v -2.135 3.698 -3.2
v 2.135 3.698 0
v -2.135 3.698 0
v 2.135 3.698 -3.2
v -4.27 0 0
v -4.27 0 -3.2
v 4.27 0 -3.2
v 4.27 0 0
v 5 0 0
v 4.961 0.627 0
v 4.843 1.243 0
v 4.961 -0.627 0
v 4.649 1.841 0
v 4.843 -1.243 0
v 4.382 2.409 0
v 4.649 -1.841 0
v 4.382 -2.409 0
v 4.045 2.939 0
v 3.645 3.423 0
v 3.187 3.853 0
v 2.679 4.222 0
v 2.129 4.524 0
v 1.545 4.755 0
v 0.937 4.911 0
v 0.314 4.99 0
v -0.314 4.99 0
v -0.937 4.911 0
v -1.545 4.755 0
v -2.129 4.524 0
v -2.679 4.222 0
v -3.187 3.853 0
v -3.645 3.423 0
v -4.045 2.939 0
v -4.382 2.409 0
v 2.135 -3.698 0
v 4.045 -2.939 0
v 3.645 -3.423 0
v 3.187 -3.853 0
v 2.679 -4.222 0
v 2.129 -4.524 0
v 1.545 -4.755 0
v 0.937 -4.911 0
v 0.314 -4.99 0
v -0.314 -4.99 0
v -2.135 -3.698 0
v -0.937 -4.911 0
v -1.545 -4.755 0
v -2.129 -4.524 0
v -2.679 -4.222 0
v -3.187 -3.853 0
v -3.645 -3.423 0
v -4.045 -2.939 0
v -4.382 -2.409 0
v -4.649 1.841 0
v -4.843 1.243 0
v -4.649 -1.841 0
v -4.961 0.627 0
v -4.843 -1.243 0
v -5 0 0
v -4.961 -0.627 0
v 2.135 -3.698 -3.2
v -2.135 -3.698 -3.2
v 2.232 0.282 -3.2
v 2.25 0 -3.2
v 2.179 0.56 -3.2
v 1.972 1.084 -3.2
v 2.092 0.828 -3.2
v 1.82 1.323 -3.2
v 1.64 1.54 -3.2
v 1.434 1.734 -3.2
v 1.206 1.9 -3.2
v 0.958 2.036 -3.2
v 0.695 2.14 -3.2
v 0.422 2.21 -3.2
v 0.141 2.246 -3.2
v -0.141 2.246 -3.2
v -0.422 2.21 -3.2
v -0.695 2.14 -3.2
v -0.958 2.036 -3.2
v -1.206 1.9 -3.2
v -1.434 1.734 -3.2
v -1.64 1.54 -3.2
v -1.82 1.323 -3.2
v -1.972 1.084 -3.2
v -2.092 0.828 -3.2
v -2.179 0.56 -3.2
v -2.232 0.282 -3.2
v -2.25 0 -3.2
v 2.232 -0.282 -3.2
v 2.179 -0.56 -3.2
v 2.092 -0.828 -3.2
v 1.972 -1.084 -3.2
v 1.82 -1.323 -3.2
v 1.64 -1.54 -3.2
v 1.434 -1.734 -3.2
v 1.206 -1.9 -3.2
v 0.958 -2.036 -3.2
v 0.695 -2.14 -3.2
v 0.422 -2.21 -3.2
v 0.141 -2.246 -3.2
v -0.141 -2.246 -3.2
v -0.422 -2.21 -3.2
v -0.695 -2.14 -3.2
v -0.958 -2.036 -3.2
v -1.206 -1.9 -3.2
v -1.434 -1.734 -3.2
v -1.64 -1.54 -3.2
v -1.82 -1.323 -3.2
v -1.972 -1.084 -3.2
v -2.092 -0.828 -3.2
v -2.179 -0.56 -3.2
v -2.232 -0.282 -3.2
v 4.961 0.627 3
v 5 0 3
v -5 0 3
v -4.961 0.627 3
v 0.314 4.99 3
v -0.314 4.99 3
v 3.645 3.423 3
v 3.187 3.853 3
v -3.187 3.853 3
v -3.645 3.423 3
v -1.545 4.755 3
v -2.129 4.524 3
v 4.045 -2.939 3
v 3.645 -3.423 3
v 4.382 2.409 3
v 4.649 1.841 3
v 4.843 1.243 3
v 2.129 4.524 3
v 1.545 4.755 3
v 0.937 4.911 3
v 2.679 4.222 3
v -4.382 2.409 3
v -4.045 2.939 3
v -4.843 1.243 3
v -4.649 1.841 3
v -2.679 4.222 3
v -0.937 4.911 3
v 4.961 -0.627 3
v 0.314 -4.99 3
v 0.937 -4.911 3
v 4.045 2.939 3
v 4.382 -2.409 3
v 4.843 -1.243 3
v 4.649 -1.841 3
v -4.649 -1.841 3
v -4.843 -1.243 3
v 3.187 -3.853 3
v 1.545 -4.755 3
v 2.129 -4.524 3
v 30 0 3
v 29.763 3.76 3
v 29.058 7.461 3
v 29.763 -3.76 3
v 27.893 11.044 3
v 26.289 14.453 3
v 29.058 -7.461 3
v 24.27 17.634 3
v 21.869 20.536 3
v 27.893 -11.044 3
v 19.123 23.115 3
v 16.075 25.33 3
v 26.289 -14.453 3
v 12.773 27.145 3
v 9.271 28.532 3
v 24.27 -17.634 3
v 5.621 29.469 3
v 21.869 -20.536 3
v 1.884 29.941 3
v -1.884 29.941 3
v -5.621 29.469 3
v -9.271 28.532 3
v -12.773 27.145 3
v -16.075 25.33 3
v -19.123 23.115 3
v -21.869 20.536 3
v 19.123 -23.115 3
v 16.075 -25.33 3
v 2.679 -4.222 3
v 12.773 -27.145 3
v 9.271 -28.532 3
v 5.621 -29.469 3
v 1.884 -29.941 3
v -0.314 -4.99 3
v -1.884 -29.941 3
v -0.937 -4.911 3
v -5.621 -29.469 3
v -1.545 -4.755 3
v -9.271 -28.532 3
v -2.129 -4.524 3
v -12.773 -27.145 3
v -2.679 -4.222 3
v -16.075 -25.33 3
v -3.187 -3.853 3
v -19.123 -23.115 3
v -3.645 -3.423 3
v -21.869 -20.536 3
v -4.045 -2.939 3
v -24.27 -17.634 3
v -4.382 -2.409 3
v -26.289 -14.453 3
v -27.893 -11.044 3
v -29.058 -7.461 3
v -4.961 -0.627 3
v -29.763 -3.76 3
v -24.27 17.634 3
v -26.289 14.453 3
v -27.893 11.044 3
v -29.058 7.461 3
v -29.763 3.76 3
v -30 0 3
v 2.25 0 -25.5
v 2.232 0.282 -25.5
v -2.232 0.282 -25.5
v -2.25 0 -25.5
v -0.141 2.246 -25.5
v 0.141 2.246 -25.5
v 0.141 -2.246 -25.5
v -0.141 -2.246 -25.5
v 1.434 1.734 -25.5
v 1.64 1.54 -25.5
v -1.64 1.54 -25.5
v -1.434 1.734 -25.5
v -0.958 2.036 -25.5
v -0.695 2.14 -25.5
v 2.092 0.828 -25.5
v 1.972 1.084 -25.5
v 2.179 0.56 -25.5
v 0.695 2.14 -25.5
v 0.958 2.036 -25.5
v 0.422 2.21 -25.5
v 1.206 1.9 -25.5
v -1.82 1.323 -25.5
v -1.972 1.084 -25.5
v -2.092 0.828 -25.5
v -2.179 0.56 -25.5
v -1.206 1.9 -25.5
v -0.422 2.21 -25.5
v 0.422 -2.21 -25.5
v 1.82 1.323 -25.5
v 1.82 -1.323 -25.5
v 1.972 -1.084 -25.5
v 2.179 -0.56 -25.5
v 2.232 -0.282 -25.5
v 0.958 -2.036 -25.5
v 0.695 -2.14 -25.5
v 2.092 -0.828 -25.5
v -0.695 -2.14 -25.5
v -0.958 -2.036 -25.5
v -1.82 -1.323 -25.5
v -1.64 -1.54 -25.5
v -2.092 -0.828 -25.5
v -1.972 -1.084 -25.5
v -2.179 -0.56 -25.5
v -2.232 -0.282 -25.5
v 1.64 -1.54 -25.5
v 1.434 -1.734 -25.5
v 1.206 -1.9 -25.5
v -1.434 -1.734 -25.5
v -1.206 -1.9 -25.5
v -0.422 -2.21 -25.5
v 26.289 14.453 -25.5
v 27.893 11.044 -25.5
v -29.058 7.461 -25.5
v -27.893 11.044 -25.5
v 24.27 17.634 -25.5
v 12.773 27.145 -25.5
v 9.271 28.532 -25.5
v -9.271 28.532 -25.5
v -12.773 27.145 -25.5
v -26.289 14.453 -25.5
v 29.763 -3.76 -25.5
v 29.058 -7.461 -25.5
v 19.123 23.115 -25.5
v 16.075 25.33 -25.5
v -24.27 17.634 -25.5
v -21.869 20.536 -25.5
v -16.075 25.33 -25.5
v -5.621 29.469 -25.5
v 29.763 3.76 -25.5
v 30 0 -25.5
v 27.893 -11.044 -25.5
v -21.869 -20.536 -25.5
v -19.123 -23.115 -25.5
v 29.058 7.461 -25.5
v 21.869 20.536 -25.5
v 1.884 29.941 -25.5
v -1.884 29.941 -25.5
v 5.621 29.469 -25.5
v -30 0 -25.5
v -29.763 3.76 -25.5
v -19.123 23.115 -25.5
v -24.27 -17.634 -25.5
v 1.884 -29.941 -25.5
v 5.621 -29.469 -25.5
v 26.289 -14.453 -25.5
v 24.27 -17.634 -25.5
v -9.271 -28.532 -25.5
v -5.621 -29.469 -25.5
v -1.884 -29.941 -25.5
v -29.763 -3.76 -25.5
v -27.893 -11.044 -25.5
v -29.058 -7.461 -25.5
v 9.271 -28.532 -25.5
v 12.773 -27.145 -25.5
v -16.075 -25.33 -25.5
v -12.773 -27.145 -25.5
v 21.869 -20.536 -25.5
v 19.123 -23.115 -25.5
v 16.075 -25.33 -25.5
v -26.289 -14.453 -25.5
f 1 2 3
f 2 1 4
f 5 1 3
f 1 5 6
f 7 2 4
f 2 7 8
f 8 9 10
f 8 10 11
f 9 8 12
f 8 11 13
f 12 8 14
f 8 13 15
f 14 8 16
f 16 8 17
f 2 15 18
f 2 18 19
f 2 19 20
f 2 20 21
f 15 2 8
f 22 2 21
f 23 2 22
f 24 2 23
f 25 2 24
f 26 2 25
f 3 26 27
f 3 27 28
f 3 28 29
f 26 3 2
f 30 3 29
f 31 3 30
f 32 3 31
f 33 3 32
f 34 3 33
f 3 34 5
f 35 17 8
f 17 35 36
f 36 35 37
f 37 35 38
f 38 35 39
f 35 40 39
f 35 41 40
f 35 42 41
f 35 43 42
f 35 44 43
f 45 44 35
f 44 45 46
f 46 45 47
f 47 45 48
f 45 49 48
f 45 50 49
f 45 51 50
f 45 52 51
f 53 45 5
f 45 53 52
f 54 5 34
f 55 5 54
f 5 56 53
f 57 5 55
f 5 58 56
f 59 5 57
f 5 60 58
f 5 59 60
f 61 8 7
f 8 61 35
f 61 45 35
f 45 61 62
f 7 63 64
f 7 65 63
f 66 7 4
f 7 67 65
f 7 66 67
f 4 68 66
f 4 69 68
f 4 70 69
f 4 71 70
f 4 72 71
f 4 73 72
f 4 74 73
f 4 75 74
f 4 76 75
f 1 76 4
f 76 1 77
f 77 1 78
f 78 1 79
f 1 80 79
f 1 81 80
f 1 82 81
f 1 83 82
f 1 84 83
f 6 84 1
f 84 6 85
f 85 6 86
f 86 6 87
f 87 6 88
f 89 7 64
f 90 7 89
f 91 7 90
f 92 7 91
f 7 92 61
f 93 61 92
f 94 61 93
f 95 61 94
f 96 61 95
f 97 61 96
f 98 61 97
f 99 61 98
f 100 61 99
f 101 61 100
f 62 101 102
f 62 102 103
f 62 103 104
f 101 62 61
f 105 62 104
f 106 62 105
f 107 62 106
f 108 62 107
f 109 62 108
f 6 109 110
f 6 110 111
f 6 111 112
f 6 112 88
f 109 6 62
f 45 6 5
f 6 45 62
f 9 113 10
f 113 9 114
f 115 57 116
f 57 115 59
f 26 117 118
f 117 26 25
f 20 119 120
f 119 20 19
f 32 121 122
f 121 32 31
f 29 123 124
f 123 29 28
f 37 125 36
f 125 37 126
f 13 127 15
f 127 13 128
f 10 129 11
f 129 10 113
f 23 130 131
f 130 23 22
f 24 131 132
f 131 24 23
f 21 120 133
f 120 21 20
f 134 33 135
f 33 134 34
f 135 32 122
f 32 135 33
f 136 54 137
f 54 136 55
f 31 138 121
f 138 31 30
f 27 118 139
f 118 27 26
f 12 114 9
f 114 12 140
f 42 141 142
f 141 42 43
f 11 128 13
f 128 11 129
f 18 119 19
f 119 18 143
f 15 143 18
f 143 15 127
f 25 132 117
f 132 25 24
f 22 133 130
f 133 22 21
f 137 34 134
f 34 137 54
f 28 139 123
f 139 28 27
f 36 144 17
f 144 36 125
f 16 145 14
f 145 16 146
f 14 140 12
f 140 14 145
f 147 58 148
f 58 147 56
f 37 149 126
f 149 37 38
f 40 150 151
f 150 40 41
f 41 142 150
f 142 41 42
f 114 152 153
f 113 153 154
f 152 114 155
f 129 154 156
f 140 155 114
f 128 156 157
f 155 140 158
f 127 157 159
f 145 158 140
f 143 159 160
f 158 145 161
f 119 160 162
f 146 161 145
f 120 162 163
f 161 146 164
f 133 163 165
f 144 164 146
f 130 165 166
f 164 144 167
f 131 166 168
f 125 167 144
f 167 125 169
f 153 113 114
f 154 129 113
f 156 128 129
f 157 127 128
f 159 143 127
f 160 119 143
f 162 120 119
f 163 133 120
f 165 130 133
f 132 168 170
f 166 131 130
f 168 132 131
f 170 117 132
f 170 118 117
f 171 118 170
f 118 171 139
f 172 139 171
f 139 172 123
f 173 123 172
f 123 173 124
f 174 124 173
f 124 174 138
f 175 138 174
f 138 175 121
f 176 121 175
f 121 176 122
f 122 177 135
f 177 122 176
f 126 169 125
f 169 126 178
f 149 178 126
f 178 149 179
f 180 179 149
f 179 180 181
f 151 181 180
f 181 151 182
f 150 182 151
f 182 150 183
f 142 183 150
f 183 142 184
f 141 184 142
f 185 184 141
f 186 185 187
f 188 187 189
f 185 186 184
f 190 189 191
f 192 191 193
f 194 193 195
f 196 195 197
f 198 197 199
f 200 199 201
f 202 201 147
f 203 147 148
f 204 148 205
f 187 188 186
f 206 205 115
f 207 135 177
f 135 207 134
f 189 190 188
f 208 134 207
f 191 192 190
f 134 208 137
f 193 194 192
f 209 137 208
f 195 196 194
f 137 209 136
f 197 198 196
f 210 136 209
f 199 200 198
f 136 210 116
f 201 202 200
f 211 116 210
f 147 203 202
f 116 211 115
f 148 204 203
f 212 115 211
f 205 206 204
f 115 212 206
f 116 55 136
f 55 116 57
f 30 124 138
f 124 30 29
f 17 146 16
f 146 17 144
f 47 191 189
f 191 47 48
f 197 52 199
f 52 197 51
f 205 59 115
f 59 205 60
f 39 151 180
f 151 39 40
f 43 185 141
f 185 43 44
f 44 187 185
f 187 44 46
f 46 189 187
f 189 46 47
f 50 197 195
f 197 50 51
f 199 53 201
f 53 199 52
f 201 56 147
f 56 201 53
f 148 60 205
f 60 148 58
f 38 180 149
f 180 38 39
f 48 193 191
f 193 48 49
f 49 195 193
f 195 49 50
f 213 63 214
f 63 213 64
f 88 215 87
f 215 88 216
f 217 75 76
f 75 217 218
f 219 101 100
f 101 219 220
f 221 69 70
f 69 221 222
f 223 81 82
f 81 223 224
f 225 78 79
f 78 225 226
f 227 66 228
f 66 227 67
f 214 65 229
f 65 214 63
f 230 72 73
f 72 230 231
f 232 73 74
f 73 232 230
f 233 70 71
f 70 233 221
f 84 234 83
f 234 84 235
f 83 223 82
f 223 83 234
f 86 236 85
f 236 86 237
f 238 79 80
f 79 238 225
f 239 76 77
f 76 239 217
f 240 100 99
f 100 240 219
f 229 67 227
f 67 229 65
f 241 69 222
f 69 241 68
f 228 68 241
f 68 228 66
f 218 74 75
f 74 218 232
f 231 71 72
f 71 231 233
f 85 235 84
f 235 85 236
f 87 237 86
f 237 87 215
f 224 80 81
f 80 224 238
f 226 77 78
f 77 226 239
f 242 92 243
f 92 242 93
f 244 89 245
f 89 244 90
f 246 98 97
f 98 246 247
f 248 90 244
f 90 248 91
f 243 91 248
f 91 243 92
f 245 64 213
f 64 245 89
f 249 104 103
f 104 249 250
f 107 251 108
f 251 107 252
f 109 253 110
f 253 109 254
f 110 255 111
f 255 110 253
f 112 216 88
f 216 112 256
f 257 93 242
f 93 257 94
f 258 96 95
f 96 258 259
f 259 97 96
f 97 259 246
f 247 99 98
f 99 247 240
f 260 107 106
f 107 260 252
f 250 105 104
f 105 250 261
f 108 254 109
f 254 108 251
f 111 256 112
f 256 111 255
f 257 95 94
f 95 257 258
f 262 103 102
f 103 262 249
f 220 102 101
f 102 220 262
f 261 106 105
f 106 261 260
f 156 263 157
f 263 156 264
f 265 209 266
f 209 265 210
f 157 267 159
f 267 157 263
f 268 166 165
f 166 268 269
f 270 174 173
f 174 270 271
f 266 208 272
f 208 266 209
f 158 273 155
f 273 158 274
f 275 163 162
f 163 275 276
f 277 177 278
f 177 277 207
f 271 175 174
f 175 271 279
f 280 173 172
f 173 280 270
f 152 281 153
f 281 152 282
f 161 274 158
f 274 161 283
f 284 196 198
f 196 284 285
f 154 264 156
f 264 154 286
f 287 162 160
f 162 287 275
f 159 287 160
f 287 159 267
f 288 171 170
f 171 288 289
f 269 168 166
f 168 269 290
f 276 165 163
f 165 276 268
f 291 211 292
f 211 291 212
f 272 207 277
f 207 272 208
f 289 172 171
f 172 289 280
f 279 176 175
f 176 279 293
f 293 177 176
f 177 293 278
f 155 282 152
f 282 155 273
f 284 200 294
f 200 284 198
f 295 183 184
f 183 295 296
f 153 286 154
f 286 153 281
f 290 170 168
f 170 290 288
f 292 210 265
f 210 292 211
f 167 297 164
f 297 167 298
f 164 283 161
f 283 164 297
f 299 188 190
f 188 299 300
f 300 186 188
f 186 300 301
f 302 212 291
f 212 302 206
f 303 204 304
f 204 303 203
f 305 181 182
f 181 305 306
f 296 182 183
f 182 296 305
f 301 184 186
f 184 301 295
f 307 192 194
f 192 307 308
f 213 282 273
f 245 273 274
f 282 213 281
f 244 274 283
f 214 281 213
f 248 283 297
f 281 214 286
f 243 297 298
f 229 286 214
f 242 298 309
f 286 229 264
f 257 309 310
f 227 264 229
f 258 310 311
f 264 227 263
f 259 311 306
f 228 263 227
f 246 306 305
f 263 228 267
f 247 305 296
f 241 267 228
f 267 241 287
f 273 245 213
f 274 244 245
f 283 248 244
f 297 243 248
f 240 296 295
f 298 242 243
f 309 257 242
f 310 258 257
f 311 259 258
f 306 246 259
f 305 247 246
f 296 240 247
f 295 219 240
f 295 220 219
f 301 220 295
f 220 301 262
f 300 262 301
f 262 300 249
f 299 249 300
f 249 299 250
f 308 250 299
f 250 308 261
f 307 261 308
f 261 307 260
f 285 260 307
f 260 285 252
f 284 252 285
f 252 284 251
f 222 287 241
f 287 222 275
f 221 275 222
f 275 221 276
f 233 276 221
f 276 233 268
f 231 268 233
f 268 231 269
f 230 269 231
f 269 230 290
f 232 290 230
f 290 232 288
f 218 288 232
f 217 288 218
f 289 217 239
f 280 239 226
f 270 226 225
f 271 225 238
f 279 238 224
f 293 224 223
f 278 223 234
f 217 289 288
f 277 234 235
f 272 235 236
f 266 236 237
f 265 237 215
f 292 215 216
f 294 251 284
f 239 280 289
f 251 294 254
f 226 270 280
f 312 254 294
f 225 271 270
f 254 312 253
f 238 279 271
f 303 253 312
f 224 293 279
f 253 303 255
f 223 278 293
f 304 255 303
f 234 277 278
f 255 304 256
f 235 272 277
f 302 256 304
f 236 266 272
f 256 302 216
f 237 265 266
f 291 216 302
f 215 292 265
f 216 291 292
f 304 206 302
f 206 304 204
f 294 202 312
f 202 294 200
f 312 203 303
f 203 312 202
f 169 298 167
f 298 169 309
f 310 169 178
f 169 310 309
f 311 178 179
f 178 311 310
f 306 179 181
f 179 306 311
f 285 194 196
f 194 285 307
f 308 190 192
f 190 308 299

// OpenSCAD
$fn = 50;


difference() {
	union() {
		translate(v = [0, 0, -25.5000000000]) {
			cylinder(h = 28.5000000000, r = 30.0000000000);
		}
	}
	union() {
		translate(v = [0, 0, 0]) {
			rotate(a = [0, 0, 0]) {
				difference() {
					union() {
						translate(v = [0, 0, -3.2000000000]) {
							linear_extrude(height = 3.2000000000) {
								polygon(points = [[4.2698000000, 0.0000000000], [2.1349000000, 3.6977552691], [-2.1349000000, 3.6977552691], [-4.2698000000, 0.0000000000], [-2.1349000000, -3.6977552691], [2.1349000000, -3.6977552691]]);
							}
						}
					}
					union();
				}
			}
		}
		#cylinder(h = 3, r = 5.0000000000);
		#translate(v = [0, 0, -100.0000000000]) {
			cylinder(h = 200, r = 2.2500000000);
		}
	}
}
